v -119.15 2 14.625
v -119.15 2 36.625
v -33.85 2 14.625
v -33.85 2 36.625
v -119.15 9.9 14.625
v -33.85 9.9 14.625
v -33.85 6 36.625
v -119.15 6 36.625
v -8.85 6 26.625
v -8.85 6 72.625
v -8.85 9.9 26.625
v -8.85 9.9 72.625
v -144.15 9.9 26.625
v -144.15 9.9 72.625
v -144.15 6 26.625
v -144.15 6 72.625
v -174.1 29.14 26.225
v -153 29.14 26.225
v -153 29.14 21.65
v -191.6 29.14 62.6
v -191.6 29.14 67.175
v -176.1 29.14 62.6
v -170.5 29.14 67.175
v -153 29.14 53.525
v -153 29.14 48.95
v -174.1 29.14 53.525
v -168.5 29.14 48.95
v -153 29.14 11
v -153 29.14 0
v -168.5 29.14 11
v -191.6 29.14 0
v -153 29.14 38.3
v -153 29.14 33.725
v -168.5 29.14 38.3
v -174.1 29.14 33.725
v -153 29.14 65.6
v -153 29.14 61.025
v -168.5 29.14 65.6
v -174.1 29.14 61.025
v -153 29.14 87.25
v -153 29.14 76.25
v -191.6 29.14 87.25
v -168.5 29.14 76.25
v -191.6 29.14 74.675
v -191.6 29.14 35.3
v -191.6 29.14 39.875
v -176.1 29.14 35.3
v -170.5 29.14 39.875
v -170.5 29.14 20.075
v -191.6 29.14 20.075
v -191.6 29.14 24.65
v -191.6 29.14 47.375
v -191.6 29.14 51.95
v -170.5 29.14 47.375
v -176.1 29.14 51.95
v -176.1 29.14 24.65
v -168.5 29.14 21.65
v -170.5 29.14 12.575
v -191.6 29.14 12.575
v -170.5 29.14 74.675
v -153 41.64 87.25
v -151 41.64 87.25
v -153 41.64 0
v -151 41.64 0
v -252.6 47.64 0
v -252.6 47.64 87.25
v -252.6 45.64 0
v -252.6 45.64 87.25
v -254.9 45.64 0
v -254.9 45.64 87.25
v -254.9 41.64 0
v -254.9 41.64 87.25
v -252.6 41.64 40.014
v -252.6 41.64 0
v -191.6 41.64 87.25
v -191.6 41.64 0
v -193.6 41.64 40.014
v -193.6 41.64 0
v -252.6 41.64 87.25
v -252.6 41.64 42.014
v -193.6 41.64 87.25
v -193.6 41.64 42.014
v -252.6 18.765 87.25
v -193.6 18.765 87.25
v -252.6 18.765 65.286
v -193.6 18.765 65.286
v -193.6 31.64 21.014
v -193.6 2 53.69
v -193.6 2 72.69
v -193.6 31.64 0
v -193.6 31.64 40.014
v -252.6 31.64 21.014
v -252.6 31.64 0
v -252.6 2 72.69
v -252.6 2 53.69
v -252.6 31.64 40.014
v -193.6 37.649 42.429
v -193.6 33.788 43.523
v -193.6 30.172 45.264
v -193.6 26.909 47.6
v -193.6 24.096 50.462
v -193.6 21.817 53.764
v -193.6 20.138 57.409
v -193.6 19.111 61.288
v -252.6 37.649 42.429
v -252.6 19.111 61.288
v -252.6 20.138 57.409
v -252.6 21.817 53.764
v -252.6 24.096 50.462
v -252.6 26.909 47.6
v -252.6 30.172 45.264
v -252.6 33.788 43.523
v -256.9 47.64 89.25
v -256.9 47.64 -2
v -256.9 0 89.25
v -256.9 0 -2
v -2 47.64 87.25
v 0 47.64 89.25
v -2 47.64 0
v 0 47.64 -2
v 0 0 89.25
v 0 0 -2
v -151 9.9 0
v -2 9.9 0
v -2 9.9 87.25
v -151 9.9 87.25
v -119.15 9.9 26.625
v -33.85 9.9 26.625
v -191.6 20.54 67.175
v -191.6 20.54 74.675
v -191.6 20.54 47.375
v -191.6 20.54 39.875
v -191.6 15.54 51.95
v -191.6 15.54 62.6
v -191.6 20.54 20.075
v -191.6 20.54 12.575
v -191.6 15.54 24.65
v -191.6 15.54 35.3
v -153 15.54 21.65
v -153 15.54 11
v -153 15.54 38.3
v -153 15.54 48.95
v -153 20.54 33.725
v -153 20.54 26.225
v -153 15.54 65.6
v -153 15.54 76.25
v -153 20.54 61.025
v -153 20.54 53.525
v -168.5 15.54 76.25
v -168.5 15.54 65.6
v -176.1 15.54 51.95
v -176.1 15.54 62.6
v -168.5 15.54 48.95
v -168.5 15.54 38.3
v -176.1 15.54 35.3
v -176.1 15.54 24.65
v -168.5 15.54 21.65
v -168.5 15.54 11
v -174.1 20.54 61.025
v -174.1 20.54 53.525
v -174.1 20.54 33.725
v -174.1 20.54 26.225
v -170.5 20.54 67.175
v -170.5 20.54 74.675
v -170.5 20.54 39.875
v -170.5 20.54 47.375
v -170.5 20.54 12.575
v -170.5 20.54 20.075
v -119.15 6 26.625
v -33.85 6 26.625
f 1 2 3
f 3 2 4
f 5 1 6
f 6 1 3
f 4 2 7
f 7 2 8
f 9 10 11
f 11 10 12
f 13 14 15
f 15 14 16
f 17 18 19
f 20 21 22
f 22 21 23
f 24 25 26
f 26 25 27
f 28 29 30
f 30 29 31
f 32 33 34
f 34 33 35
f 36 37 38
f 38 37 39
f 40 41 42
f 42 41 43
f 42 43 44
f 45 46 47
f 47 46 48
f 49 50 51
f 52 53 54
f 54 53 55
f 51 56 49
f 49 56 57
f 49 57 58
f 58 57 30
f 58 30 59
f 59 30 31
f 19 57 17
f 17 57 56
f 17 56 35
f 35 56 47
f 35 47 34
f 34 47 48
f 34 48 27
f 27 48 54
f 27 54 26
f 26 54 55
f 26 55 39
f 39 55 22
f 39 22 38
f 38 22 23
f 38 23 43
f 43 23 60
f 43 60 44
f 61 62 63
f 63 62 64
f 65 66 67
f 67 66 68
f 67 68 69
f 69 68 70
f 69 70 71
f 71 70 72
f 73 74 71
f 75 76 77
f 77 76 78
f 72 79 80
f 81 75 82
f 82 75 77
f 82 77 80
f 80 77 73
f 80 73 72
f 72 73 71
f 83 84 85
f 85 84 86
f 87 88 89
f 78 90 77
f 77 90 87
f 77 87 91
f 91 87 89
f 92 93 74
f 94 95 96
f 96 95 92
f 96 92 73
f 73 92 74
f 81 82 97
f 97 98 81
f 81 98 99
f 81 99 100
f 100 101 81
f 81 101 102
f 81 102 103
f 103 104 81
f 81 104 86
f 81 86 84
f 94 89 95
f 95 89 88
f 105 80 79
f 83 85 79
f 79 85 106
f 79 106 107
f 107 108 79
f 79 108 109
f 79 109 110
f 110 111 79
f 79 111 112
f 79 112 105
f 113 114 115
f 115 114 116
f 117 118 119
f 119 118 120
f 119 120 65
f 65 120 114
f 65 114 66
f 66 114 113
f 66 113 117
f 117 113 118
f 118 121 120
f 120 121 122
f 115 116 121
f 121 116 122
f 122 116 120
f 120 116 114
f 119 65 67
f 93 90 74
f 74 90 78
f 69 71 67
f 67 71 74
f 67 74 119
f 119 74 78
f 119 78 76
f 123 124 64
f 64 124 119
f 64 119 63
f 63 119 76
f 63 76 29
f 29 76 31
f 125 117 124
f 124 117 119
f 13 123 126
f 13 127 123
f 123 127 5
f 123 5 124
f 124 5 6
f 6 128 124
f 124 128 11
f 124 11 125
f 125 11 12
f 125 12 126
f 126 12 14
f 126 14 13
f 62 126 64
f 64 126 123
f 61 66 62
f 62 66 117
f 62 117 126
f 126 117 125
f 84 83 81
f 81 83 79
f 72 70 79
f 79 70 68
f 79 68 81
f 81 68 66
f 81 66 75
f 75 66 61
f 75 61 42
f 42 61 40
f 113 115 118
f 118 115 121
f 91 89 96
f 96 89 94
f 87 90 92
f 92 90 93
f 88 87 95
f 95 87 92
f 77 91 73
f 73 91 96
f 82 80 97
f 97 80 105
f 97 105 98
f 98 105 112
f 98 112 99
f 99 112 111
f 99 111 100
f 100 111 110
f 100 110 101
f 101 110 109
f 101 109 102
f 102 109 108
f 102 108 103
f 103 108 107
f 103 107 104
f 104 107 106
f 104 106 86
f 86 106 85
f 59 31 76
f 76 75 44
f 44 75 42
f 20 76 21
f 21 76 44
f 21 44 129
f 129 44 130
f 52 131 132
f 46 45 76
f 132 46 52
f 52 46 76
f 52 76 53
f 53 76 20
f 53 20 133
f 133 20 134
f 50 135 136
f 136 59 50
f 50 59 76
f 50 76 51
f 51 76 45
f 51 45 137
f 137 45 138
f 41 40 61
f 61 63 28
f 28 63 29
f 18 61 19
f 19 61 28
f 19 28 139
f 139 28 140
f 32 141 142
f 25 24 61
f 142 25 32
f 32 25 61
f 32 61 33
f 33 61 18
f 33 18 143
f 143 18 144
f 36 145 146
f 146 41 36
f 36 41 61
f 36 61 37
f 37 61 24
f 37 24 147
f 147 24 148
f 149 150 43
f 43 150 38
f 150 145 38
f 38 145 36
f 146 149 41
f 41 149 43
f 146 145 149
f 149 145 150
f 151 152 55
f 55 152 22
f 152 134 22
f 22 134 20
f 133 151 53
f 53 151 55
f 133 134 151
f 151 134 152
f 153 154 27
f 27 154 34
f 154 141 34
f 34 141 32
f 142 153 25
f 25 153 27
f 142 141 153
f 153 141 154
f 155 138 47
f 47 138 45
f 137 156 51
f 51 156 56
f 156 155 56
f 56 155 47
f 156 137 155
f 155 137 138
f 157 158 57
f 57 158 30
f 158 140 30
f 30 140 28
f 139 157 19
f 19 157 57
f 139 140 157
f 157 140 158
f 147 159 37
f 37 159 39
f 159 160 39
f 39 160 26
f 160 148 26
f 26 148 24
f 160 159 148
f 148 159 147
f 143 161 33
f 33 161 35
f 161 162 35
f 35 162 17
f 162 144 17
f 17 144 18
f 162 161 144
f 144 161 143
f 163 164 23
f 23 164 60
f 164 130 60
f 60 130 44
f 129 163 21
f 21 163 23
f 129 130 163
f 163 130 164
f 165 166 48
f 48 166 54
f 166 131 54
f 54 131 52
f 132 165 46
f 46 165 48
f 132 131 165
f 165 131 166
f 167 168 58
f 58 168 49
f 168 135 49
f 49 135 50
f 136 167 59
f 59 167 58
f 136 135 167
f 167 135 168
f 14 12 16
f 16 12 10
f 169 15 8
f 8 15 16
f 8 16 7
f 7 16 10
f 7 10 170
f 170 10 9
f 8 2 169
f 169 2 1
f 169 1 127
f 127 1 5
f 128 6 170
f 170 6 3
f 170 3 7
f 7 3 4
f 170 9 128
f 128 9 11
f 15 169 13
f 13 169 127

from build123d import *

# Parameters (mm, degrees)
BOSS_EXTRUDE1_DEPTH  = 2
BOSS_EXTRUDE2_DEPTH  = 87.25
BOSS_EXTRUDE4_DEPTH  = 2
BOSS_EXTRUDE5_DEPTH  = 59
SKETCH5_3_W          = 2
SKETCH5_3_H          = 10
BOSS_EXTRUDE6_DEPTH  = 59
BOSS_EXTRUDE7_DEPTH  = 59
BOSS_EXTRUDE8_DEPTH  = 6
SKETCH8_W            = 38.6
SKETCH8_H            = 87.25
CUT_EXTRUDE1_DEPTH   = 12.5
SKETCH9_W            = 15.5
SKETCH9_H            = 10.65
CUT_EXTRUDE2_DEPTH   = 13.6
SKETCH9_4_W          = 21.1
SKETCH9_4_H          = 7.5
CUT_EXTRUDE3_DEPTH   = 8.6
SKETCH10_W           = 135.3
SKETCH10_H           = 14.625
BOSS_EXTRUDE9_DEPTH  = 7.9
BOSS_EXTRUDE10_DEPTH = 4
SKETCH11_W           = 25
SKETCH11_H           = 7.9
BOSS_EXTRUDE14_DEPTH = 22
SKETCH12_W           = 25
SKETCH12_H           = 10
CUT_EXTRUDE4_DEPTH   = 3.9


with BuildPart() as part:
    # Sketch2 → Boss-Extrude1 (new body)
    with BuildSketch(Plane.XY):
        Polygon((-256.9, 0), (0, 0), (0, 41.64), (-254.9, 41.64), (-254.9, 45.64), (-252.6, 45.64), (-252.6, 47.64), (-256.9, 47.64), align=None)
    extrude(amount=-BOSS_EXTRUDE1_DEPTH)

    # Sketch2<3> → Boss-Extrude2 (add)
    with BuildSketch(Plane.XY):
        Polygon((-256.9, 0), (0, 0), (0, 41.64), (-2, 41.64), (-2, 9.9), (-8.85, 9.9), (-8.85, 2), (-144.15, 2), (-144.15, 9.9), (-151, 9.9), (-151, 41.64), (-153, 41.64), (-191.6, 41.64), (-193.6, 41.64), (-193.6, 2), (-252.6, 2), (-252.6, 41.64), (-254.9, 41.64), (-254.9, 45.64), (-252.6, 45.64), (-252.6, 47.64), (-256.9, 47.64), align=None)
    extrude(amount=BOSS_EXTRUDE2_DEPTH)

    # Sketch4 → Boss-Extrude4 (add)
    with BuildSketch(Plane.XY.offset(87.25)):
        Polygon((-256.9, 47.64), (-256.9, 0), (0, 0), (0, 41.64), (-254.9, 41.64), (-254.9, 45.64), (-252.6, 45.64), (-252.6, 47.64), align=None)
    extrude(amount=BOSS_EXTRUDE4_DEPTH)

    # Sketch5 → Boss-Extrude5 (add)
    with BuildSketch(Plane(origin=(-252.6, 0, 0), x_dir=(0, 0, -1), z_dir=(1, 0, 0))):
        Polygon((0, 2), (0, 31.64), (-21.014243309, 31.64), (-53.69, 2), align=None)
        Polygon((-72.69, 2), (-40.014243309, 31.64), (-42.014243309, 31.64), (-56.208170838, 18.764766047), (-87.25, 18.764766047), (-87.25, 2), align=None)
    extrude(amount=BOSS_EXTRUDE5_DEPTH)

    # Sketch5<3> → Boss-Extrude6 (add)
    with BuildSketch(Plane(origin=(-252.6, 0, 0), x_dir=(0, 0, -1), z_dir=(1, 0, 0))):
        with Locations((-41.014243309, 36.64)):
            Rectangle(SKETCH5_3_W, SKETCH5_3_H)
    extrude(amount=BOSS_EXTRUDE6_DEPTH)

    # Sketch6 → Boss-Extrude7 (add)
    with BuildSketch(Plane(origin=(-252.6, 0, 0), x_dir=(0, 0, -1), z_dir=(1, 0, 0))):
        with BuildLine():
            Line((-42.014243309, 31.64), (-42.014243309, 41.64))
            ThreePointArc((-42.014243309, 41.64), (-48.969941413, 25.441110515), (-65.285951379, 18.764766047))
            Line((-65.285951379, 18.764766047), (-56.208170838, 18.764766047))
            Line((-56.208170838, 18.764766047), (-42.014243309, 31.64))
        make_face()
    extrude(amount=BOSS_EXTRUDE7_DEPTH)

    # Sketch7 → Boss-Extrude8 (add)
    with BuildSketch(Plane(origin=(0, 41.64, 0), x_dir=(1, 0, 0), z_dir=(0, 1, 0))):
        Polygon((0, -89.25), (0, 2), (-254.9, 2), (-254.9, 0), (-252.6, 0), (-2, 0), (-2, -87.25), (-252.6, -87.25), (-254.9, -87.25), (-254.9, -89.25), align=None)
    extrude(amount=BOSS_EXTRUDE8_DEPTH)

    # Sketch8 → Cut-Extrude1 (cut)
    with BuildSketch(Plane(origin=(0, 41.64, 0), x_dir=(1, 0, 0), z_dir=(0, 1, 0))):
        with Locations((-172.3, -43.625)):
            Rectangle(SKETCH8_W, SKETCH8_H)
    extrude(amount=-CUT_EXTRUDE1_DEPTH, mode=Mode.SUBTRACT)

    # Sketch9 → Cut-Extrude2 (cut)
    with BuildSketch(Plane(origin=(0, 29.14, 0), x_dir=(1, 0, 0), z_dir=(0, 1, 0))):
        with Locations((-160.75, -16.325)):
            Rectangle(SKETCH9_W, SKETCH9_H)
        with Locations((-183.85, -29.975)):
            Rectangle(SKETCH9_W, SKETCH9_H)
        with Locations((-160.75, -43.625)):
            Rectangle(SKETCH9_W, SKETCH9_H)
        with Locations((-183.85, -57.275)):
            Rectangle(SKETCH9_W, SKETCH9_H)
        with Locations((-160.75, -70.925)):
            Rectangle(SKETCH9_W, SKETCH9_H)
    extrude(amount=-CUT_EXTRUDE2_DEPTH, mode=Mode.SUBTRACT)

    # Sketch9<4> → Cut-Extrude3 (cut)
    with BuildSketch(Plane(origin=(0, 29.14, 0), x_dir=(1, 0, 0), z_dir=(0, 1, 0))):
        with Locations((-181.05, -16.325)):
            Rectangle(SKETCH9_4_W, SKETCH9_4_H)
        with Locations((-181.05, -43.625)):
            Rectangle(SKETCH9_4_W, SKETCH9_4_H)
        with Locations((-163.55, -29.975)):
            Rectangle(SKETCH9_4_W, SKETCH9_4_H)
        with Locations((-181.05, -70.925)):
            Rectangle(SKETCH9_4_W, SKETCH9_4_H)
        with Locations((-163.55, -57.275)):
            Rectangle(SKETCH9_4_W, SKETCH9_4_H)
    extrude(amount=-CUT_EXTRUDE3_DEPTH, mode=Mode.SUBTRACT)

    # Sketch10 → Boss-Extrude9 (add)
    with BuildSketch(Plane(origin=(0, 2, 0), x_dir=(1, 0, 0), z_dir=(0, 1, 0))):
        with Locations((-76.5, -79.9375)):
            Rectangle(SKETCH10_W, SKETCH10_H)
        with Locations((-76.5, -7.3125)):
            Rectangle(SKETCH10_W, SKETCH10_H)
    extrude(amount=BOSS_EXTRUDE9_DEPTH)

    # Sketch10<4> → Boss-Extrude10 (add)
    with BuildSketch(Plane(origin=(0, 2, 0), x_dir=(1, 0, 0), z_dir=(0, 1, 0))):
        Polygon((-8.85, -36.625), (-144.15, -36.625), (-144.15, -72.625), (-76.5, -72.625), (-8.85, -72.625), align=None)
    extrude(amount=BOSS_EXTRUDE10_DEPTH)

    # Sketch11 → Boss-Extrude14 (add)
    with BuildSketch(Plane.XY.offset(14.625)):
        with Locations((-131.65, 5.95)):
            Rectangle(SKETCH11_W, SKETCH11_H)
        with Locations((-21.35, 5.95)):
            Rectangle(SKETCH11_W, SKETCH11_H)
    extrude(amount=BOSS_EXTRUDE14_DEPTH)

    # Sketch12 → Cut-Extrude4 (cut)
    with BuildSketch(Plane(origin=(0, 9.9, 0), x_dir=(1, 0, 0), z_dir=(0, 1, 0))):
        with Locations((-131.65, -31.625)):
            Rectangle(SKETCH12_W, SKETCH12_H)
        with Locations((-21.35, -31.625)):
            Rectangle(SKETCH12_W, SKETCH12_H)
    extrude(amount=-CUT_EXTRUDE4_DEPTH, mode=Mode.SUBTRACT)


solid = part.part
